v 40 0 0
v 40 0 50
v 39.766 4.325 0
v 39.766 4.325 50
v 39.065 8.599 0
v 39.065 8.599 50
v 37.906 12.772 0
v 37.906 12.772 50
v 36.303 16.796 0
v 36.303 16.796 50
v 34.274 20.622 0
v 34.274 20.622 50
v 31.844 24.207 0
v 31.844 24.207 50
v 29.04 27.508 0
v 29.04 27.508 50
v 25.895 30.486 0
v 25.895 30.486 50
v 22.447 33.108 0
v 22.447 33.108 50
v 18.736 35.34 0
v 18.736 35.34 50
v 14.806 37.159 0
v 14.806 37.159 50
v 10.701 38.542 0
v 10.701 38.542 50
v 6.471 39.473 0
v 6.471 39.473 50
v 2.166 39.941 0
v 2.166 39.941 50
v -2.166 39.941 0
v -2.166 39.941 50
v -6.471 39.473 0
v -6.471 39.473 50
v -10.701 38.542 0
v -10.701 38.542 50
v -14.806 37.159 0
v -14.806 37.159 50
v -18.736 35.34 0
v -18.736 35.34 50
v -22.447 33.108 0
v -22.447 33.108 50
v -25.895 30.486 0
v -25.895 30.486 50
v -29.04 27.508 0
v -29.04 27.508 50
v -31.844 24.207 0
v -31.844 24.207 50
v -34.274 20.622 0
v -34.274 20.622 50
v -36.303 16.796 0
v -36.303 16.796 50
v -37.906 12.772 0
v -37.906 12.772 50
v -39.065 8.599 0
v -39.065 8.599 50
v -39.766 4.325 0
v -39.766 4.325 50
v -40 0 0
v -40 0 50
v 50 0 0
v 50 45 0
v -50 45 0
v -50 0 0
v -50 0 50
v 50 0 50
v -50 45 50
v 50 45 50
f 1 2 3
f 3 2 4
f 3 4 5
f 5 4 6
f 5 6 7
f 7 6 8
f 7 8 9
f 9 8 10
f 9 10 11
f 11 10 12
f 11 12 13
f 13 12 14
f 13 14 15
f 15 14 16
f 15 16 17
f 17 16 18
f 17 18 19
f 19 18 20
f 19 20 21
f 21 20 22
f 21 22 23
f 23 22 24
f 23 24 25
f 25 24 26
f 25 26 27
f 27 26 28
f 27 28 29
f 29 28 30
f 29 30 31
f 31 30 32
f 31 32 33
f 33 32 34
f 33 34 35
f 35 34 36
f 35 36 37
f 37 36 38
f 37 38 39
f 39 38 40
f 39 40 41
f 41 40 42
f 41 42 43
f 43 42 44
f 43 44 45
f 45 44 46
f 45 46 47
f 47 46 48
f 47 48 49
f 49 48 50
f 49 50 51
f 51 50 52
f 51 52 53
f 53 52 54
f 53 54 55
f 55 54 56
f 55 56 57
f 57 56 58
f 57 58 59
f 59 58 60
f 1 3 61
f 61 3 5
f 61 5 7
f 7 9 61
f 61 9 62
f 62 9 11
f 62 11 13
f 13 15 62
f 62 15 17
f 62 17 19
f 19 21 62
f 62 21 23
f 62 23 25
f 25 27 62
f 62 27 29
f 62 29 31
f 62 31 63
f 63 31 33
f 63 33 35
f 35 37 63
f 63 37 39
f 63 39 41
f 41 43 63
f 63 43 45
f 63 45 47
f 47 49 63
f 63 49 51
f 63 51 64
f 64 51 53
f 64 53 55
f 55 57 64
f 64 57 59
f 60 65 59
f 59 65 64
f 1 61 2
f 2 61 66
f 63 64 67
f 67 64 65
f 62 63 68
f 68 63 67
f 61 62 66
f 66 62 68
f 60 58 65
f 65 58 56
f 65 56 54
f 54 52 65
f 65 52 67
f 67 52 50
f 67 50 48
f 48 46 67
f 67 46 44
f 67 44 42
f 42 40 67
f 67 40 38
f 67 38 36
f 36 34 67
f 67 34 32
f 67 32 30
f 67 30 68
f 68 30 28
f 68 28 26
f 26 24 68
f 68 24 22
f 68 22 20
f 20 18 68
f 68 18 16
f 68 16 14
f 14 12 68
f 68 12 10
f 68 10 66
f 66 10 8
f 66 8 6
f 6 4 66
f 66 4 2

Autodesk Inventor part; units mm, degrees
ref_plane "YZ Plane" through (0, 0, 0) normal (1, 0, 0) x (0, 1, 0)
ref_plane "XZ Plane" through (0, 0, 0) normal (0, 1, 0) x (-1, 0, 0)
ref_plane "XY Plane" through (0, 0, 0) normal (0, 0, 1) x (1, 0, 0)
sketch "Sketch13" plane through (0, 0, 0) normal (0, 0, 1) x (1, 0, 0)
  line L0 (-50, 45) -> (50, 45)
  line L1 (50, 45) -> (50, 0)
  line L2 (50, 0) -> (-50, 0)
  line L3 (-50, 0) -> (-50, 45)
  line L4 (-50, 45) -> (50, 0) construction
  line L5 (50, 45) -> (-50, 0) construction
  point P0 (0, 0)
  point P1 (0, 22.5)
  dimension "d42" = 100
  dimension "d43" = 45
extrude "Extrusion11" add sketch "Sketch13" along normal blind 50
sketch "Sketch14" plane through (0, 0, 50) normal (0, 0, 1) x (1, 0, 0)
  circle A0 centre (0, 0) radius 40
  dimension "d46" = 80
extrude "Extrusion12" cut sketch "Sketch14" against normal blind 50
sketch "Sketch15" plane through (0, 0, 50) normal (0, 0, 1) x (1, 0, 0)
  point P0 (0, 0)
properties part number "pipe_holder_v02"
